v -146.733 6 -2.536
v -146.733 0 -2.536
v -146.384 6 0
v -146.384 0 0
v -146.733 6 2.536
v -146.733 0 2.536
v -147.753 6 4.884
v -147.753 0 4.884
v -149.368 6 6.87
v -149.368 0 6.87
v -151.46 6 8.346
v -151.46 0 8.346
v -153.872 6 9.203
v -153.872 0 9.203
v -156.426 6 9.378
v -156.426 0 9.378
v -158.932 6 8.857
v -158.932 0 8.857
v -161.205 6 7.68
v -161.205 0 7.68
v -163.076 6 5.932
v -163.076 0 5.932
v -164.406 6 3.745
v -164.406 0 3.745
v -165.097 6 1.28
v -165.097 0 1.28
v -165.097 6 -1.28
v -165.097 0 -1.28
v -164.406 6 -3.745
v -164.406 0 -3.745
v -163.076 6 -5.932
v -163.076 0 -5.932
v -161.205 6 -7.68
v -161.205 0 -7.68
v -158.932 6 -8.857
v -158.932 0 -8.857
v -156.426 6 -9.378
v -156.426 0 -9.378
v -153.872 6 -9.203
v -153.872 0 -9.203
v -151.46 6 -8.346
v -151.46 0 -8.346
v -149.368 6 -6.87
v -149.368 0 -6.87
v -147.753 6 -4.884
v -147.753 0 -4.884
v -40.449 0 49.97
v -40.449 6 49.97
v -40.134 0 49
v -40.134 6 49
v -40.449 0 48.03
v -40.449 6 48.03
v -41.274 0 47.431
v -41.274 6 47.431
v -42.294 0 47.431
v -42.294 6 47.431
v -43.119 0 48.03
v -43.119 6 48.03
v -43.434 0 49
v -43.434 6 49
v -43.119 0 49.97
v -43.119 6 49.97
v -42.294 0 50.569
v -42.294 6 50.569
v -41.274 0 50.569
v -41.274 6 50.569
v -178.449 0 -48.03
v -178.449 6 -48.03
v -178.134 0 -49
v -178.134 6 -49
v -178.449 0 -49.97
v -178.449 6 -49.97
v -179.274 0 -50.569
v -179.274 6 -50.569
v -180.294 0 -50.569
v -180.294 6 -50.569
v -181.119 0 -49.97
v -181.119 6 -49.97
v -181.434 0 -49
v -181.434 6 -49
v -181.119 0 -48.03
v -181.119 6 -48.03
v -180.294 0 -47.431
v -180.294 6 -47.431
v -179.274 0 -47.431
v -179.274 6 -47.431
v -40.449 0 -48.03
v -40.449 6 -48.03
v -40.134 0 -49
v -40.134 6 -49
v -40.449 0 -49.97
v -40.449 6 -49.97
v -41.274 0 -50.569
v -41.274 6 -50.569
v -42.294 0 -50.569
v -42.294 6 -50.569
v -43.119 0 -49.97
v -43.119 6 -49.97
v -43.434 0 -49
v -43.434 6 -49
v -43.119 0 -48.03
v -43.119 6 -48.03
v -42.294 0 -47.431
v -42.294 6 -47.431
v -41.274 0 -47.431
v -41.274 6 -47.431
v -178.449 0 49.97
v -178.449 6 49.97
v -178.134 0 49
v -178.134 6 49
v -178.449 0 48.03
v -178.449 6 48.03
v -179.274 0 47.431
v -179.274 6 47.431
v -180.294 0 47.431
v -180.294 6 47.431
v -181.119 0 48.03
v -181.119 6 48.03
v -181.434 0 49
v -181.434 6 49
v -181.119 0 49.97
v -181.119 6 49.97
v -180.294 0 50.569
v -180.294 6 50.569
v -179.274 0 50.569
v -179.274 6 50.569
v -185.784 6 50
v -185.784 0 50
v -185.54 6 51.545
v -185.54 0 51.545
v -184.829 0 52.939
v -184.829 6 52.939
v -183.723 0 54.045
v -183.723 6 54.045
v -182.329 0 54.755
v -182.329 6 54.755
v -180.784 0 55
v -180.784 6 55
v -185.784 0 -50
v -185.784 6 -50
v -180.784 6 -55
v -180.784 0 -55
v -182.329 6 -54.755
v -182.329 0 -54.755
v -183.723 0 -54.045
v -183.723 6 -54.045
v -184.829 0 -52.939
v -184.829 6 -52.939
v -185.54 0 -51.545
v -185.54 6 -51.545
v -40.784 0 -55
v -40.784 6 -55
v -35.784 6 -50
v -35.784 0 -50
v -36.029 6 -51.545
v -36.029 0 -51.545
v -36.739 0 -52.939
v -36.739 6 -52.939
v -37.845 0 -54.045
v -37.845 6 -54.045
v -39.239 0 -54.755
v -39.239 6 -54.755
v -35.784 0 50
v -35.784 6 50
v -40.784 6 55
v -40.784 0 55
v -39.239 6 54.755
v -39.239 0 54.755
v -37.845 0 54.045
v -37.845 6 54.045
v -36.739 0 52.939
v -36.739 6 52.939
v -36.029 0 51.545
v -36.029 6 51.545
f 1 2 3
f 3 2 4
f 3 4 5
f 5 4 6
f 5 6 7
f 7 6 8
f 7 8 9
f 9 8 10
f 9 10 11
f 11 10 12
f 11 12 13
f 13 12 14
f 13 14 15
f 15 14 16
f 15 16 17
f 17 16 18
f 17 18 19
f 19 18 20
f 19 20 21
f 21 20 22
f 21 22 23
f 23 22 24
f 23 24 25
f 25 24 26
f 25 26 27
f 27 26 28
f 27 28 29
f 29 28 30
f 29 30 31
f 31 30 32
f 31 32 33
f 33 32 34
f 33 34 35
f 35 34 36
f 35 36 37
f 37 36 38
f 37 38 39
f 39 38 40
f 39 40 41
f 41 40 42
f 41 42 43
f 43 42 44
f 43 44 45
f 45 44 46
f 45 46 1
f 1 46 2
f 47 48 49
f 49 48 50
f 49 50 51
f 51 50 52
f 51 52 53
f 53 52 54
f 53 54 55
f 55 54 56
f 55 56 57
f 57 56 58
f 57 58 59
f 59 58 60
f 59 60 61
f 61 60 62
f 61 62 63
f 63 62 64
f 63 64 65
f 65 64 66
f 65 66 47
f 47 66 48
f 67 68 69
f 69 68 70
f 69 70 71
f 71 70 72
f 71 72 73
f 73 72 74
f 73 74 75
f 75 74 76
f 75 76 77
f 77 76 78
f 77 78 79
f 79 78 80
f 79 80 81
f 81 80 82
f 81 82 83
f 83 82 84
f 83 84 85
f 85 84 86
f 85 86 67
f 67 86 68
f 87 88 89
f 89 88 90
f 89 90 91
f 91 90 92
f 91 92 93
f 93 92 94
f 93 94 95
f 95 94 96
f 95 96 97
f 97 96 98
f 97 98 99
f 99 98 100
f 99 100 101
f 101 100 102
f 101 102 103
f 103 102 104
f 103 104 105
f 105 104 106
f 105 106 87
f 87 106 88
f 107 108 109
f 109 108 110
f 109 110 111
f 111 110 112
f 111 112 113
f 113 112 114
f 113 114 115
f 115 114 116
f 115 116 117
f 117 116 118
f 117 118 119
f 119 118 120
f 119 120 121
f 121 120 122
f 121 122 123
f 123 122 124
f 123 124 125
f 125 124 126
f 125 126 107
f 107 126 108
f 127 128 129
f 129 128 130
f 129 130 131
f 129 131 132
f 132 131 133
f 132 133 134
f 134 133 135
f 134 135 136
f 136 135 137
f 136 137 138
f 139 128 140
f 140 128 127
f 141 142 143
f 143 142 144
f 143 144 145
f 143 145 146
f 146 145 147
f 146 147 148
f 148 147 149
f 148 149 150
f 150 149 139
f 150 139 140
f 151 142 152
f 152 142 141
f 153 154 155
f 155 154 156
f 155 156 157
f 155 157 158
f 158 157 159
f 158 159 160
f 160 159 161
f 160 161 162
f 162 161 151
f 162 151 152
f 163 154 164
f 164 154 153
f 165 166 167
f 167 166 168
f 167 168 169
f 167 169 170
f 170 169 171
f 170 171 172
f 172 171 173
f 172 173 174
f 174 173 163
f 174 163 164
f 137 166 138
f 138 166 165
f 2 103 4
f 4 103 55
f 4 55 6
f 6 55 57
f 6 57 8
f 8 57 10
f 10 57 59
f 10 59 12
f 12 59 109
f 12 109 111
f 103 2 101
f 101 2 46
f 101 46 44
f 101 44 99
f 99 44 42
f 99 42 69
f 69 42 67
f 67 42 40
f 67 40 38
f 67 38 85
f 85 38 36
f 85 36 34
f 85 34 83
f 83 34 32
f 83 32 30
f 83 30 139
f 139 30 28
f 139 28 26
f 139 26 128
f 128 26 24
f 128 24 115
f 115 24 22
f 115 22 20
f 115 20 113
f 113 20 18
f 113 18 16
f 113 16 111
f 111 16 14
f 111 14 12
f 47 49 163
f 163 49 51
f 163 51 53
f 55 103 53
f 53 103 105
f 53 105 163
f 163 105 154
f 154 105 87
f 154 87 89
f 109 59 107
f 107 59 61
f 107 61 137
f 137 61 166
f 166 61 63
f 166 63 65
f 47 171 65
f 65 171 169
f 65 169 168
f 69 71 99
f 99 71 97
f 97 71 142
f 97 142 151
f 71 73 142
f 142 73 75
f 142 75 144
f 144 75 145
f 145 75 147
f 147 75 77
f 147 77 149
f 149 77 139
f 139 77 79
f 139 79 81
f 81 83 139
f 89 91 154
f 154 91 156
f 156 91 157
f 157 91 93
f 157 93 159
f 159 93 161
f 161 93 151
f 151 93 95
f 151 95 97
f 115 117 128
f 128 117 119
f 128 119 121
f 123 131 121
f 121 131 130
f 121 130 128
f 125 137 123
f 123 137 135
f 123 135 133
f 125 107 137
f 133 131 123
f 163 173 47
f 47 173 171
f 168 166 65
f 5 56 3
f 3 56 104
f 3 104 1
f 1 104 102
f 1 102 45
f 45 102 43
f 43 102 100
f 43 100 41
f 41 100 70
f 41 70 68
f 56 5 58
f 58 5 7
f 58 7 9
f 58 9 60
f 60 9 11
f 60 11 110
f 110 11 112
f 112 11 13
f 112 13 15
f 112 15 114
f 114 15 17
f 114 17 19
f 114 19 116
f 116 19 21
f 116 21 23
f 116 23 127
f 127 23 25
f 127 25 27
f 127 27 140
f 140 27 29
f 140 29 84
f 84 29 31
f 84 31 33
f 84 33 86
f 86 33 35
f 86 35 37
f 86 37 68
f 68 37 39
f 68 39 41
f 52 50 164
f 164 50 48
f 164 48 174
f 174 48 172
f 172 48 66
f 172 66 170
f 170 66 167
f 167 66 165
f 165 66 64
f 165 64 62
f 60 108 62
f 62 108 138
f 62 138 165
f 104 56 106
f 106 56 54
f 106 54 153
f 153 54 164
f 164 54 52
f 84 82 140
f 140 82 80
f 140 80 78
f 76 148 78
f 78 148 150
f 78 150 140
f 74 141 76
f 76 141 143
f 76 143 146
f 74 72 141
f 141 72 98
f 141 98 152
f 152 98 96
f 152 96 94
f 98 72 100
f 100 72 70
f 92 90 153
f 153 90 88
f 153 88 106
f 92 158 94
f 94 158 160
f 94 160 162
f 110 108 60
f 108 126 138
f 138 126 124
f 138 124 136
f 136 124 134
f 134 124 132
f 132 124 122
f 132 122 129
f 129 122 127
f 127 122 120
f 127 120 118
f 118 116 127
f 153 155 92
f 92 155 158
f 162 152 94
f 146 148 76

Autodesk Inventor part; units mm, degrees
ref_plane "YZ Plane" through (0, 0, 0) normal (1, 0, 0) x (0, 1, 0)
ref_plane "XZ Plane" through (0, 0, 0) normal (0, 1, 0) x (-1, 0, 0)
ref_plane "XY Plane" through (0, 0, 0) normal (0, 0, 1) x (1, 0, 0)
sketch "Sketch1" plane through (0, 0, 0) normal (0, 1, 0) x (-1, 0, 0)
  circle A0 centre (179.7843, -49) radius 2.65
  circle A1 centre (41.7843, 49) radius 2.65
  circle A2 centre (179.7843, 49) radius 2.65
  circle A3 centre (41.7843, -49) radius 2.65
  arc A4 (185.7843, 50) -> (180.7843, 55) centre (180.7843, 50) ccw
  line L0 (40.7843, 55) -> (180.7843, 55)
  arc A5 (40.7843, 55) -> (35.7843, 50) centre (40.7843, 50) ccw
  line L1 (35.7843, 12.5) -> (35.7843, 50)
  line L2 (35.7843, -50) -> (35.7843, -12.5)
  arc A6 (35.7843, -50) -> (40.7843, -55) centre (40.7843, -50) ccw
  line L3 (40.7843, -55) -> (180.7843, -55)
  arc A7 (180.7843, -55) -> (185.7843, -50) centre (180.7843, -50) ccw
  line L4 (185.7843, 50) -> (185.7843, -50)
  line L5 (35.7843, -12.5) -> (35.7843, 12.5)
  point P0 (0, 0)
  point P1 (35.7843, 55)
extrude "Extrusion1" add sketch "Sketch1" along normal blind 6
sketch "Sketch2" plane through (0, 6, 0) normal (0, 1, 0) x (1, 0, 0)
  circle A0 centre (-179.7843, 49) radius 2.65 projected
  circle A1 centre (-179.7843, 49) radius 1.65
  circle A2 centre (-41.7843, 49) radius 2.65 projected
  circle A3 centre (-41.7843, 49) radius 1.65
  circle A4 centre (-41.7843, -49) radius 2.65 projected
  circle A5 centre (-41.7843, -49) radius 1.65
  circle A6 centre (-179.7843, -49) radius 2.65 projected
  circle A7 centre (-179.7843, -49) radius 1.65
  point P0 (0, 0)
  dimension "d2" = 3.3
  dimension "d3" = 3.3
  dimension "d4" = 3.3
  dimension "d5" = 3.3
extrude "Extrusion2" add sketch "Sketch2" against normal blind 6
sketch "Sketch3" plane through (0, 0, 0) normal (0, -1, 0) x (1, 0, 0)
  circle A0 centre (-155.7843, 0) radius 9.4
  line L0 (-185.7843, 50) -> (-185.7843, -50) projected
  line L1 (-40.7843, 55) -> (-180.7843, 55) projected
  point P0 (0, 0)
  dimension "d8" = 18.8
  dimension "d9" = 30
  dimension "d10" = 55
extrude "Extrusion3" cut sketch "Sketch3" against normal blind 6
properties part number "MainHousing_BottomPlate"
